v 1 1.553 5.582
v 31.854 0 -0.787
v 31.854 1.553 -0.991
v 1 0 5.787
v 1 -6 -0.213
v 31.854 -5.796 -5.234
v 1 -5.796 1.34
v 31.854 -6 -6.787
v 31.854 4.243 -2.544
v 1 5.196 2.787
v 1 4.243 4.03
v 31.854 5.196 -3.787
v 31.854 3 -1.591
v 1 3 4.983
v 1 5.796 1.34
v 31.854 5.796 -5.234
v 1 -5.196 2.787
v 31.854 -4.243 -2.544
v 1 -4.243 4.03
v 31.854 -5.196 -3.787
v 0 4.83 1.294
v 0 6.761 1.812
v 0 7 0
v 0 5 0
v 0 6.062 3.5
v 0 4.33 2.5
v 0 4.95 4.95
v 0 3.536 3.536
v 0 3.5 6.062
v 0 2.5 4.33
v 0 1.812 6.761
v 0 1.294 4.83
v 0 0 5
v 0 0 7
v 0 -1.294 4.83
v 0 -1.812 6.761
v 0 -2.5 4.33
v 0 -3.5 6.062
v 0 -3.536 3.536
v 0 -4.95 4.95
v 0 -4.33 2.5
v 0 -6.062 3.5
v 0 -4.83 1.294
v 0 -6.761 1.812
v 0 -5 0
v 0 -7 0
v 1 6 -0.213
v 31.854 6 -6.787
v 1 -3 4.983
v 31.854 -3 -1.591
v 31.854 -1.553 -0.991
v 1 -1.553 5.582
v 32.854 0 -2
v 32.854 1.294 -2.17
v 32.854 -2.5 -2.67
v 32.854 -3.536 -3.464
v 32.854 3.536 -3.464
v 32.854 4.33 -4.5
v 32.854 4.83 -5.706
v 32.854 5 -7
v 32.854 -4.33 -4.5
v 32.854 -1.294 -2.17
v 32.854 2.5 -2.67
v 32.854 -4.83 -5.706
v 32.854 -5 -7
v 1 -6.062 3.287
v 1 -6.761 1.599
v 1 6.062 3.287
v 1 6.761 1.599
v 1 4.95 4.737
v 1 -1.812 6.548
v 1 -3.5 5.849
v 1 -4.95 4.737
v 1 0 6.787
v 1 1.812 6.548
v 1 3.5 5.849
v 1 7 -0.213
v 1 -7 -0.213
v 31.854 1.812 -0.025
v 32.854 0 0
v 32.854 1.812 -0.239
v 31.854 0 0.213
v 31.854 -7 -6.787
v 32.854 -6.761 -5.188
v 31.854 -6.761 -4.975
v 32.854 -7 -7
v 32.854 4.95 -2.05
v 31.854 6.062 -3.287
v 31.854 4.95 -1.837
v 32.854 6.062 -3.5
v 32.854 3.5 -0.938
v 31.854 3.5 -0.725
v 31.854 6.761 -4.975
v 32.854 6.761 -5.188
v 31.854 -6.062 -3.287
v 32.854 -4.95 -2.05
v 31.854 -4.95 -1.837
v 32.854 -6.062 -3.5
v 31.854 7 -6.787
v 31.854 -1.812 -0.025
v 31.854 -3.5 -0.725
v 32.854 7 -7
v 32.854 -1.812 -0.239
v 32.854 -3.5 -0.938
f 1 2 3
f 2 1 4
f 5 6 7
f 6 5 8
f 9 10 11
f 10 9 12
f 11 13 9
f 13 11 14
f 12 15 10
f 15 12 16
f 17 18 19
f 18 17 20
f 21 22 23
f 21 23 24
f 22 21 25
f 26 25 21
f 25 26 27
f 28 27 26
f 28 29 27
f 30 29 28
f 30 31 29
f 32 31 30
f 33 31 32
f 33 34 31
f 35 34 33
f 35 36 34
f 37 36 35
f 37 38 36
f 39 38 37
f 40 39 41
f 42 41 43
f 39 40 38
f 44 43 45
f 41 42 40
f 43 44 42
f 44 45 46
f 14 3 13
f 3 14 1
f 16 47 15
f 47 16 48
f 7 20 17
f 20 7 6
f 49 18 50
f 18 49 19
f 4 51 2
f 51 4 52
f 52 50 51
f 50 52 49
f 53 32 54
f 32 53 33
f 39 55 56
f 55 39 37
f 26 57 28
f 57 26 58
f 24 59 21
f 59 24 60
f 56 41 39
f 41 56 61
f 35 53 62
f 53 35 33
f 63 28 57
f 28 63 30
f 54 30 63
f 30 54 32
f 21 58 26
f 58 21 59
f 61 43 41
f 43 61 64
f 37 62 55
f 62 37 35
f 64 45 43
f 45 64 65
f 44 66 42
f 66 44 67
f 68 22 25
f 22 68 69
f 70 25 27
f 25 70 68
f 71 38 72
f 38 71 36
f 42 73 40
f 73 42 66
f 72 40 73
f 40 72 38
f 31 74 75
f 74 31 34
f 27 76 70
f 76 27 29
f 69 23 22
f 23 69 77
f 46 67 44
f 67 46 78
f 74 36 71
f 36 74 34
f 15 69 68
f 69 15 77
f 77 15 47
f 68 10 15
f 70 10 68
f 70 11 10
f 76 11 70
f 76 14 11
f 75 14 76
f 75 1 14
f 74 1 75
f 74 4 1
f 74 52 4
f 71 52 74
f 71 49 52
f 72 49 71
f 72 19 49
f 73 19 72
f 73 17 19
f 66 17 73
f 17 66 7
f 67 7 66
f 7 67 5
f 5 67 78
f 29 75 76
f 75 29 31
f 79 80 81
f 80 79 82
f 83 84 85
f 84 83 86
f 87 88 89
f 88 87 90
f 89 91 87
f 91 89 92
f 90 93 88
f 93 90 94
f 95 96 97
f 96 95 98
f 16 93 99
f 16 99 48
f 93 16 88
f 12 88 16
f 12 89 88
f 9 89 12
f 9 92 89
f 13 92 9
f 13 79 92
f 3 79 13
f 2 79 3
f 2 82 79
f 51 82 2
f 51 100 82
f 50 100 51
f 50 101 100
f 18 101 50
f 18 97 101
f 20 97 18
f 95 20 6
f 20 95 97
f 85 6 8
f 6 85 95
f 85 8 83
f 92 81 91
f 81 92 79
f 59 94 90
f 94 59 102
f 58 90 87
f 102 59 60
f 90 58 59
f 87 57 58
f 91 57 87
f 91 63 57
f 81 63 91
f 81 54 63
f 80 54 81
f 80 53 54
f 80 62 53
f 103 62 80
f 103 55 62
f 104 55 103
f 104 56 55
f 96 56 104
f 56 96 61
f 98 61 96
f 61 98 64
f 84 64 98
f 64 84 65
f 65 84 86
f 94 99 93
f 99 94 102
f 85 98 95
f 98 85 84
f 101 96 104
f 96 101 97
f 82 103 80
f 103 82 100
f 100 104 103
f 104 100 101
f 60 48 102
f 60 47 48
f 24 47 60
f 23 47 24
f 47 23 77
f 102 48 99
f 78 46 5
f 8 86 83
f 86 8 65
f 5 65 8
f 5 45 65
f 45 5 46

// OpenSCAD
// file: ../build_environments.scad
// build_environments.scad: modules to build level sections
//

module pool(diameter=10.0, wall_height=2.0, step_width=3.0, connections=[])
{
    difference() {
        union() {
        difference() {
            cylinder(h=0.5,r1=diameter+step_width,r2=diameter+step_width,$fn=48);
            translate([0,0,-0.1])
                cylinder(h=0.7,r1=diameter,r2=diameter,$fn=48);
        }
        difference() {
            cylinder(h=wall_height,r1=diameter+step_width+1.0,r2=diameter+step_width+1.0,$fn=48);
            translate([0,0,-0.1])
                cylinder(h=wall_height+0.2,r1=diameter+step_width,r2=diameter+step_width,$fn=48);
        }
        }
    
        for (c = connections)
        {
            rotate([0,90,0]) {
                angle = atan2(c[1],c[0]);
                rotate([-angle,0,0]) {
                    cylinder(h=diameter+5.0,r1=c[2],r2=c[2],$fn=48);
                }
            }
        }
    }
}

module straight(length=10.0, width=2.0, dy1=0.0, dy2=0.0, dz=0.0)
{
    dims = [0, 0, 0, 0, 0, (dz/length)];
    matrix = [
        [ 1, dims[0], dims[1], 0 ],
        [ dims[2], 1, dims[4], 0 ],
        [ dims[5], dims[3], 1, 0 ],
        [ 0, 0, 0, 1 ]
    ];
    multmatrix(matrix)
    difference() {
        translate([dy1,0,0])
        union() {
            rotate([0,90,0]) {
                difference() {
                    cylinder(h=(length-dy1-dy2),r1=width+1.0,r2=width+1.0,$fn=24);
                    translate([0,0,-0.1])
                        cylinder(h=(length-dy1-dy2+0.2),r1=width,r2=width,$fn=24);
                }
                difference() {
                    cylinder(h=1.0,r1=width+2.0,r2=width+2.0,$fn=24);
                    translate([0,0,-0.1])
                        cylinder(h=1.2,r1=width,r2=width,$fn=24);
                }
                translate([0,0,(length-dy1-dy2)-1.0]) {
                    difference() {
                        cylinder(h=1.0,r1=width+2.0,r2=width+2.0,$fn=24);
                        translate([0,0,-0.1])
                            cylinder(h=1.2,r1=width,r2=width,$fn=24);
                    }
                }
            }
        }
        translate([0,0,-(2*width+4.0)/2])
            cube([3*length,3*length,2*width+4.0],center=true);
    }
}

module curve(p0=[0,0], center=[0,0], dir=1, angle=0.0, width=2.0)
{
    radius = sqrt((p0[0]-center[0])*(p0[0]-center[0]) + (p0[1]-center[1])*(p0[1]-center[1]));
    if (dir == 0) {
        difference() {
            rotate([0,0,-90])
            difference() {
                rotate_extrude(angle = angle, convexity = 10, $fn=32)
                    translate([radius, 0, 0])
                        circle(r = width+1.0,$fn=24);
                rotate([0,0,-1.0])
                    rotate_extrude(angle = angle+2.0, convexity = 10, $fn=32)
                        translate([radius, 0, 0])
                            circle(r = width,$fn=24);
            }
            translate([0,0,-(2*width+4.0)/2])
                cube([5*radius,5*radius,2*width+4.0],center=true);
        }
    }
    else {
        difference() {
            rotate([0,0,90])
            difference() {
                rotate_extrude(angle = -angle, convexity = 10, $fn=32)
                    translate([radius, 0, 0])
                        circle(r = width+1.0,$fn=24);
                rotate([0,0,1.0])
                    rotate_extrude(angle = -angle-2.0, convexity = 10, $fn=32)
                        translate([radius, 0, 0])
                            circle(r = width,$fn=24);
            }
            translate([0,0,-(2*width+4.0)/2])
                cube([5*radius,5*radius,2*width+4.0],center=true);
        }
    }

}

// test pool
//pool(diameter=12.0000, wall_height=3.0000, step_width=3.0000, connections=[[0.0000,-26.0000,2.0000], [23.6074,0.0000,2.0000]]);

// test straight, slope
//straight(length=26.0000, width=2.0000, dy1=11.8322, dy2=6.7082, dz=0.0000);
//straight(length=29.1549, width=12.0000, dy1=0.0000, dy2=0.0000, dz=-15.0000);

// test curve
//curve(p0=[23.6074, 0.0000], center=[23.6074, 5.0000], dir=0, angle=60.1011, width=2.0000);
//curve(p0=[33.6426, 12.4219], center=[37.9771, 9.9295], dir=1, angle=120.4627, width=2.0000);
// main file
use <../build_environments.scad>;
straight(length=32.8543, width=5.0000, dy1=0.0000, dy2=0.0000, dz=-7.0000);
